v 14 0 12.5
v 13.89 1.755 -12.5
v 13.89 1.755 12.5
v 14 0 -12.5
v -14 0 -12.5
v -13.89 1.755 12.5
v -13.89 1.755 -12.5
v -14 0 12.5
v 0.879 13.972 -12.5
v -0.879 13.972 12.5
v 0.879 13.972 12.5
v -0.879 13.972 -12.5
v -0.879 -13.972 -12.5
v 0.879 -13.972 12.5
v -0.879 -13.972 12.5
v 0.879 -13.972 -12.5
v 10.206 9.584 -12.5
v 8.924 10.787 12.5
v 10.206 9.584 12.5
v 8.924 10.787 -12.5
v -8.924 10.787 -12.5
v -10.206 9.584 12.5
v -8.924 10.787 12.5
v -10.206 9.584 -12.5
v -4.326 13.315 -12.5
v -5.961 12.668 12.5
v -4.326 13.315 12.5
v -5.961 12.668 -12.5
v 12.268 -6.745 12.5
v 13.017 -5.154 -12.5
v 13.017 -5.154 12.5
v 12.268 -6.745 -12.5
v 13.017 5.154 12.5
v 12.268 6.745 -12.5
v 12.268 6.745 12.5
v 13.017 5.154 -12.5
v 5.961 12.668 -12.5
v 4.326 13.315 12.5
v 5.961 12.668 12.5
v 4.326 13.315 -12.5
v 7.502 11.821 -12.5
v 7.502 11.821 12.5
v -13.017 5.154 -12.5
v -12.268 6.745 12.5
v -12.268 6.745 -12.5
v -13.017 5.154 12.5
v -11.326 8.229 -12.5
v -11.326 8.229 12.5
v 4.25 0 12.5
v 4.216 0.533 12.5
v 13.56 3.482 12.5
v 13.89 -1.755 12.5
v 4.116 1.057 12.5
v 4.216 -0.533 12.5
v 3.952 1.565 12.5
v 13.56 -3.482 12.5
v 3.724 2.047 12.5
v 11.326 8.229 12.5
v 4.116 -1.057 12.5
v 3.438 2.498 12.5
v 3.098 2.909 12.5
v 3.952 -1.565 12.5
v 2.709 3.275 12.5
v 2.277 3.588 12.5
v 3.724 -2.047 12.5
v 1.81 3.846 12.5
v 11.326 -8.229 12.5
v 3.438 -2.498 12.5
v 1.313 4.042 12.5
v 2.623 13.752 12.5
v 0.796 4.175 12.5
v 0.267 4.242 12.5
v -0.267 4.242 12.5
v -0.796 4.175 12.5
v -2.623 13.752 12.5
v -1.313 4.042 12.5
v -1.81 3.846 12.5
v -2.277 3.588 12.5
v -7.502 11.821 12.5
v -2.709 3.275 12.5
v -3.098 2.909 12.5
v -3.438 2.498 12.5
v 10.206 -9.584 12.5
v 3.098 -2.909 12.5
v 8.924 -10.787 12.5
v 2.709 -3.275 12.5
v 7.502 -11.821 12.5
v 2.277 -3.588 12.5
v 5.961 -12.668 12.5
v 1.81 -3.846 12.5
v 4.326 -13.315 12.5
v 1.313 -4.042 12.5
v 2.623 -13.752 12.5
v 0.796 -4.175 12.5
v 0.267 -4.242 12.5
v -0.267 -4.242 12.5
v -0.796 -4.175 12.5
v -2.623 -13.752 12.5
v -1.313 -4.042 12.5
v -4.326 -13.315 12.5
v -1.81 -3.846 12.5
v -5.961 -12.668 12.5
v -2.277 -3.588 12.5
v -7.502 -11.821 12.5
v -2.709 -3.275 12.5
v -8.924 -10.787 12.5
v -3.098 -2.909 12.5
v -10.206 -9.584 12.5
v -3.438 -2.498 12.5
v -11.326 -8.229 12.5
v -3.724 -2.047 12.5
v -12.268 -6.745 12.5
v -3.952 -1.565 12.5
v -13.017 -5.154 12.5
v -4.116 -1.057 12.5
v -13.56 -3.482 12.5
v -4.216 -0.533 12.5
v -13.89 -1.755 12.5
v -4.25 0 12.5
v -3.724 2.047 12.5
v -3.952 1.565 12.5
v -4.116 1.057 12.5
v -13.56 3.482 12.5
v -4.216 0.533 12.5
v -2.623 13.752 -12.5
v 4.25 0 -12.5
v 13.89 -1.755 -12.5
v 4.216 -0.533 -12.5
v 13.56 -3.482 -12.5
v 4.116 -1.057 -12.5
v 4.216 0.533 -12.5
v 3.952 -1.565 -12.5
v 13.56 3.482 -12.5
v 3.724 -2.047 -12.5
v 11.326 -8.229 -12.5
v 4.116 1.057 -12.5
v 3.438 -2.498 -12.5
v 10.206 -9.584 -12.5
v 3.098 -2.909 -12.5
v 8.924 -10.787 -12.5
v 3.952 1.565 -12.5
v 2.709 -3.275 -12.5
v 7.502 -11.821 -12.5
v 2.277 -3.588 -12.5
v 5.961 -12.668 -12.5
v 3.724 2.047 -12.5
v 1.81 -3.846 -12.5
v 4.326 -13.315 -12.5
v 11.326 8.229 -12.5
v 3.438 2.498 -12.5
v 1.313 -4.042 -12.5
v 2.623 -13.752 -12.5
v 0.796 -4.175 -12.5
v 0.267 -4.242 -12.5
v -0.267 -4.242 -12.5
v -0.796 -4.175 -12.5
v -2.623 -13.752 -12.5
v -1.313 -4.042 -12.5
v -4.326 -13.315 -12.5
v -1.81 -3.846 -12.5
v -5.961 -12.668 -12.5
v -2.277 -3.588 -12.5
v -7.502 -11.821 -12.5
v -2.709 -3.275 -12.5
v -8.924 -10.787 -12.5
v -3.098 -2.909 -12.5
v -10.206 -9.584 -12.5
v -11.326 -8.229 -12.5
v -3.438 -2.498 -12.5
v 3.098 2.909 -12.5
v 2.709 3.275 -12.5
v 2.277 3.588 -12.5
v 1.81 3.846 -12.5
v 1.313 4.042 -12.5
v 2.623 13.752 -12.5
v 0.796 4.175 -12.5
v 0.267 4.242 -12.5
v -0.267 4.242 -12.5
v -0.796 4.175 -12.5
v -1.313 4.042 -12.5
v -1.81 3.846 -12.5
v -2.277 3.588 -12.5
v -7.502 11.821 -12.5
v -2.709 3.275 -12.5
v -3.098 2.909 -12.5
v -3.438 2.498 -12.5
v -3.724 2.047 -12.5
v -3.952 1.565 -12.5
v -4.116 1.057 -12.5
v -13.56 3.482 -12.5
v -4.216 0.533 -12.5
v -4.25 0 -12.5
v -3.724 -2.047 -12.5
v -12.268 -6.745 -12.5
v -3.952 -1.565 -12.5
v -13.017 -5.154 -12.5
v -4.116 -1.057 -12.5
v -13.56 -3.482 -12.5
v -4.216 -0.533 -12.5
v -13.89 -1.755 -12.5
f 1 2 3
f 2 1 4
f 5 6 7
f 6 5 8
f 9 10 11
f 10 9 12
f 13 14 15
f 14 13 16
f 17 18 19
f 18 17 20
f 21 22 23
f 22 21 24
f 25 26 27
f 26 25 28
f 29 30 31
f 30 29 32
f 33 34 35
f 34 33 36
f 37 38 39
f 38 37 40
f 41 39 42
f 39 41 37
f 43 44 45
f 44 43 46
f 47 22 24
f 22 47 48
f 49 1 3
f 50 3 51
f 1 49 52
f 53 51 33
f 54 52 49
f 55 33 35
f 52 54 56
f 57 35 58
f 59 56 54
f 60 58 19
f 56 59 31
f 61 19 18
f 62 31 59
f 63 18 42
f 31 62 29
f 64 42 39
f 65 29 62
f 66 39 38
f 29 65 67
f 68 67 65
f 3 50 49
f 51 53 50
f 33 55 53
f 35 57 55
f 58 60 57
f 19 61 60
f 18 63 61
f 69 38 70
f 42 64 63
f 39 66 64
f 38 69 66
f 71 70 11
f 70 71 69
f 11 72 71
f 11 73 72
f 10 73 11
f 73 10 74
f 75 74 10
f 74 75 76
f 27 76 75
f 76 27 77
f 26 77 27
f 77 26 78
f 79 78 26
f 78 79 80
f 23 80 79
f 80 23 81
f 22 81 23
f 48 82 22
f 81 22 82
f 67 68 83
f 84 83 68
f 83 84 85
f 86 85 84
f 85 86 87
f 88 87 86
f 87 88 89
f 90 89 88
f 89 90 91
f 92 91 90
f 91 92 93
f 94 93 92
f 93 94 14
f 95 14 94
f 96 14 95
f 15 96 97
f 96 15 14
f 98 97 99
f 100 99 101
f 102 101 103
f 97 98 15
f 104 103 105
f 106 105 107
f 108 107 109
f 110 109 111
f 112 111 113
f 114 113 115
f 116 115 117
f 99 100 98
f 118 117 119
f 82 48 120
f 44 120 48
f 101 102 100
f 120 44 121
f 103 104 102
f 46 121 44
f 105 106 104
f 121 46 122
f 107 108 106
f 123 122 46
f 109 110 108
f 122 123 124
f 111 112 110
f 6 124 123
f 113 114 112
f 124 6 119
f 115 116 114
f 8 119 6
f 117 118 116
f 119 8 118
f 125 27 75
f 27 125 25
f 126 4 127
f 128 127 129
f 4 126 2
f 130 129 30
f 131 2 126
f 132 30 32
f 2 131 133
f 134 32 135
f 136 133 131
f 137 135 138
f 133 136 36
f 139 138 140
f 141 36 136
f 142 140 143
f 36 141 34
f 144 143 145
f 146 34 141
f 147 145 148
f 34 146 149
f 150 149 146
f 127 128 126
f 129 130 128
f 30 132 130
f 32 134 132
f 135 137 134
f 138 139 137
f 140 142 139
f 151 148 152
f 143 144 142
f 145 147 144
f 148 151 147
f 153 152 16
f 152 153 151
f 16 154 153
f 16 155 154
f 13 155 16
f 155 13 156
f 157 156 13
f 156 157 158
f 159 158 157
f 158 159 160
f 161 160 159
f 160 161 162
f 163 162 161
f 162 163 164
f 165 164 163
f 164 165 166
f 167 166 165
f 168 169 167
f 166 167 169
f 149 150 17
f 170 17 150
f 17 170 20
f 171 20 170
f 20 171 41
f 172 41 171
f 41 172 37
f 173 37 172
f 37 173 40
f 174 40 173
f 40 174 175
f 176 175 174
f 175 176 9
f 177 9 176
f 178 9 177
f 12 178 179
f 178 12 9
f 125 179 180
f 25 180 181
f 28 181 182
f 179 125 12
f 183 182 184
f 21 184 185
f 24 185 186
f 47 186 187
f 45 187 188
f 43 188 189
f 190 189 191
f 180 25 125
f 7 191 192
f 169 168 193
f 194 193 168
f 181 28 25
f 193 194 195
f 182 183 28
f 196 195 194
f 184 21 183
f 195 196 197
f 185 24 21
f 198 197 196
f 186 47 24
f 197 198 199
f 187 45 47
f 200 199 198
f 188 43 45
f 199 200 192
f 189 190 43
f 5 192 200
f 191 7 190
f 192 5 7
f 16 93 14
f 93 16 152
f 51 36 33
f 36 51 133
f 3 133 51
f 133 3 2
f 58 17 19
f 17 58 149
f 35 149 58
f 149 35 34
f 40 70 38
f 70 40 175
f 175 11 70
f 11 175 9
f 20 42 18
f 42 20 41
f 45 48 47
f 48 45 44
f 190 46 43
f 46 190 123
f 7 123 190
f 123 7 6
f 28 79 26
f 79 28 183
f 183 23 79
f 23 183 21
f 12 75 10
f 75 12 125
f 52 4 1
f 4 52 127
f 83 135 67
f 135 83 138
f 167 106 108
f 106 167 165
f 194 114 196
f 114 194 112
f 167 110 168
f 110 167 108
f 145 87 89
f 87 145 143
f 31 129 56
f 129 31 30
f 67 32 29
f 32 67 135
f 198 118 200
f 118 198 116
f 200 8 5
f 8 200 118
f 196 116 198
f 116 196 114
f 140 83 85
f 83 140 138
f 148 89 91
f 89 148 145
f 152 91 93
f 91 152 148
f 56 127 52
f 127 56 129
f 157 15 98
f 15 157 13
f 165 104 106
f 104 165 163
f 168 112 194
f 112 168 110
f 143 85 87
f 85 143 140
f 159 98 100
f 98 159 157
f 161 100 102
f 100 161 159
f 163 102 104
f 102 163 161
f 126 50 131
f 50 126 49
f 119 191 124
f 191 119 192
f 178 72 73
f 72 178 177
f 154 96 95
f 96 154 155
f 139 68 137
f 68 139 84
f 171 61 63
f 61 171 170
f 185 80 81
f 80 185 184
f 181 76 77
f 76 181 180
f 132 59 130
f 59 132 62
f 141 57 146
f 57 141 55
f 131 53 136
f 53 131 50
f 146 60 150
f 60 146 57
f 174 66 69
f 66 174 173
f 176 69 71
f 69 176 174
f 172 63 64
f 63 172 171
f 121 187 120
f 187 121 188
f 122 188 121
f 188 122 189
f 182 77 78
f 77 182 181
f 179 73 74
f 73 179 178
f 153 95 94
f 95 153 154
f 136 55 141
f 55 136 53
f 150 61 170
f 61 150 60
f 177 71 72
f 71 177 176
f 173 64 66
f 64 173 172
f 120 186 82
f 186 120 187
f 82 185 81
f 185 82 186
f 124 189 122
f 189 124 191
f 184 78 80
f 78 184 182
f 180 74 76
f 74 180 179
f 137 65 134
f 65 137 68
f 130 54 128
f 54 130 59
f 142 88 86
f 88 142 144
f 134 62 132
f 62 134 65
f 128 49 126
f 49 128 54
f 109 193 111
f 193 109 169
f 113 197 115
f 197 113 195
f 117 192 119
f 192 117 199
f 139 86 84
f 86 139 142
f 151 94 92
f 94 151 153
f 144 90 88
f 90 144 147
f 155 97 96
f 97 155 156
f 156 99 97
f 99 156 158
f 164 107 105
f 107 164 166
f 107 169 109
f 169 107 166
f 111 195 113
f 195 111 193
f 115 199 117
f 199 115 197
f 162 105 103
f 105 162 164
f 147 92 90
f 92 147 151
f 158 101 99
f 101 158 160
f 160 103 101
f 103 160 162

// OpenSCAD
$fn = 50;


difference() {
	union() {
		translate(v = [0, 0, -12.5000000000]) {
			cylinder(h = 25, r = 14.0000000000);
		}
	}
	union() {
		translate(v = [0, 0, -100.0000000000]) {
			cylinder(h = 200, r = 4.2500000000);
		}
	}
}
